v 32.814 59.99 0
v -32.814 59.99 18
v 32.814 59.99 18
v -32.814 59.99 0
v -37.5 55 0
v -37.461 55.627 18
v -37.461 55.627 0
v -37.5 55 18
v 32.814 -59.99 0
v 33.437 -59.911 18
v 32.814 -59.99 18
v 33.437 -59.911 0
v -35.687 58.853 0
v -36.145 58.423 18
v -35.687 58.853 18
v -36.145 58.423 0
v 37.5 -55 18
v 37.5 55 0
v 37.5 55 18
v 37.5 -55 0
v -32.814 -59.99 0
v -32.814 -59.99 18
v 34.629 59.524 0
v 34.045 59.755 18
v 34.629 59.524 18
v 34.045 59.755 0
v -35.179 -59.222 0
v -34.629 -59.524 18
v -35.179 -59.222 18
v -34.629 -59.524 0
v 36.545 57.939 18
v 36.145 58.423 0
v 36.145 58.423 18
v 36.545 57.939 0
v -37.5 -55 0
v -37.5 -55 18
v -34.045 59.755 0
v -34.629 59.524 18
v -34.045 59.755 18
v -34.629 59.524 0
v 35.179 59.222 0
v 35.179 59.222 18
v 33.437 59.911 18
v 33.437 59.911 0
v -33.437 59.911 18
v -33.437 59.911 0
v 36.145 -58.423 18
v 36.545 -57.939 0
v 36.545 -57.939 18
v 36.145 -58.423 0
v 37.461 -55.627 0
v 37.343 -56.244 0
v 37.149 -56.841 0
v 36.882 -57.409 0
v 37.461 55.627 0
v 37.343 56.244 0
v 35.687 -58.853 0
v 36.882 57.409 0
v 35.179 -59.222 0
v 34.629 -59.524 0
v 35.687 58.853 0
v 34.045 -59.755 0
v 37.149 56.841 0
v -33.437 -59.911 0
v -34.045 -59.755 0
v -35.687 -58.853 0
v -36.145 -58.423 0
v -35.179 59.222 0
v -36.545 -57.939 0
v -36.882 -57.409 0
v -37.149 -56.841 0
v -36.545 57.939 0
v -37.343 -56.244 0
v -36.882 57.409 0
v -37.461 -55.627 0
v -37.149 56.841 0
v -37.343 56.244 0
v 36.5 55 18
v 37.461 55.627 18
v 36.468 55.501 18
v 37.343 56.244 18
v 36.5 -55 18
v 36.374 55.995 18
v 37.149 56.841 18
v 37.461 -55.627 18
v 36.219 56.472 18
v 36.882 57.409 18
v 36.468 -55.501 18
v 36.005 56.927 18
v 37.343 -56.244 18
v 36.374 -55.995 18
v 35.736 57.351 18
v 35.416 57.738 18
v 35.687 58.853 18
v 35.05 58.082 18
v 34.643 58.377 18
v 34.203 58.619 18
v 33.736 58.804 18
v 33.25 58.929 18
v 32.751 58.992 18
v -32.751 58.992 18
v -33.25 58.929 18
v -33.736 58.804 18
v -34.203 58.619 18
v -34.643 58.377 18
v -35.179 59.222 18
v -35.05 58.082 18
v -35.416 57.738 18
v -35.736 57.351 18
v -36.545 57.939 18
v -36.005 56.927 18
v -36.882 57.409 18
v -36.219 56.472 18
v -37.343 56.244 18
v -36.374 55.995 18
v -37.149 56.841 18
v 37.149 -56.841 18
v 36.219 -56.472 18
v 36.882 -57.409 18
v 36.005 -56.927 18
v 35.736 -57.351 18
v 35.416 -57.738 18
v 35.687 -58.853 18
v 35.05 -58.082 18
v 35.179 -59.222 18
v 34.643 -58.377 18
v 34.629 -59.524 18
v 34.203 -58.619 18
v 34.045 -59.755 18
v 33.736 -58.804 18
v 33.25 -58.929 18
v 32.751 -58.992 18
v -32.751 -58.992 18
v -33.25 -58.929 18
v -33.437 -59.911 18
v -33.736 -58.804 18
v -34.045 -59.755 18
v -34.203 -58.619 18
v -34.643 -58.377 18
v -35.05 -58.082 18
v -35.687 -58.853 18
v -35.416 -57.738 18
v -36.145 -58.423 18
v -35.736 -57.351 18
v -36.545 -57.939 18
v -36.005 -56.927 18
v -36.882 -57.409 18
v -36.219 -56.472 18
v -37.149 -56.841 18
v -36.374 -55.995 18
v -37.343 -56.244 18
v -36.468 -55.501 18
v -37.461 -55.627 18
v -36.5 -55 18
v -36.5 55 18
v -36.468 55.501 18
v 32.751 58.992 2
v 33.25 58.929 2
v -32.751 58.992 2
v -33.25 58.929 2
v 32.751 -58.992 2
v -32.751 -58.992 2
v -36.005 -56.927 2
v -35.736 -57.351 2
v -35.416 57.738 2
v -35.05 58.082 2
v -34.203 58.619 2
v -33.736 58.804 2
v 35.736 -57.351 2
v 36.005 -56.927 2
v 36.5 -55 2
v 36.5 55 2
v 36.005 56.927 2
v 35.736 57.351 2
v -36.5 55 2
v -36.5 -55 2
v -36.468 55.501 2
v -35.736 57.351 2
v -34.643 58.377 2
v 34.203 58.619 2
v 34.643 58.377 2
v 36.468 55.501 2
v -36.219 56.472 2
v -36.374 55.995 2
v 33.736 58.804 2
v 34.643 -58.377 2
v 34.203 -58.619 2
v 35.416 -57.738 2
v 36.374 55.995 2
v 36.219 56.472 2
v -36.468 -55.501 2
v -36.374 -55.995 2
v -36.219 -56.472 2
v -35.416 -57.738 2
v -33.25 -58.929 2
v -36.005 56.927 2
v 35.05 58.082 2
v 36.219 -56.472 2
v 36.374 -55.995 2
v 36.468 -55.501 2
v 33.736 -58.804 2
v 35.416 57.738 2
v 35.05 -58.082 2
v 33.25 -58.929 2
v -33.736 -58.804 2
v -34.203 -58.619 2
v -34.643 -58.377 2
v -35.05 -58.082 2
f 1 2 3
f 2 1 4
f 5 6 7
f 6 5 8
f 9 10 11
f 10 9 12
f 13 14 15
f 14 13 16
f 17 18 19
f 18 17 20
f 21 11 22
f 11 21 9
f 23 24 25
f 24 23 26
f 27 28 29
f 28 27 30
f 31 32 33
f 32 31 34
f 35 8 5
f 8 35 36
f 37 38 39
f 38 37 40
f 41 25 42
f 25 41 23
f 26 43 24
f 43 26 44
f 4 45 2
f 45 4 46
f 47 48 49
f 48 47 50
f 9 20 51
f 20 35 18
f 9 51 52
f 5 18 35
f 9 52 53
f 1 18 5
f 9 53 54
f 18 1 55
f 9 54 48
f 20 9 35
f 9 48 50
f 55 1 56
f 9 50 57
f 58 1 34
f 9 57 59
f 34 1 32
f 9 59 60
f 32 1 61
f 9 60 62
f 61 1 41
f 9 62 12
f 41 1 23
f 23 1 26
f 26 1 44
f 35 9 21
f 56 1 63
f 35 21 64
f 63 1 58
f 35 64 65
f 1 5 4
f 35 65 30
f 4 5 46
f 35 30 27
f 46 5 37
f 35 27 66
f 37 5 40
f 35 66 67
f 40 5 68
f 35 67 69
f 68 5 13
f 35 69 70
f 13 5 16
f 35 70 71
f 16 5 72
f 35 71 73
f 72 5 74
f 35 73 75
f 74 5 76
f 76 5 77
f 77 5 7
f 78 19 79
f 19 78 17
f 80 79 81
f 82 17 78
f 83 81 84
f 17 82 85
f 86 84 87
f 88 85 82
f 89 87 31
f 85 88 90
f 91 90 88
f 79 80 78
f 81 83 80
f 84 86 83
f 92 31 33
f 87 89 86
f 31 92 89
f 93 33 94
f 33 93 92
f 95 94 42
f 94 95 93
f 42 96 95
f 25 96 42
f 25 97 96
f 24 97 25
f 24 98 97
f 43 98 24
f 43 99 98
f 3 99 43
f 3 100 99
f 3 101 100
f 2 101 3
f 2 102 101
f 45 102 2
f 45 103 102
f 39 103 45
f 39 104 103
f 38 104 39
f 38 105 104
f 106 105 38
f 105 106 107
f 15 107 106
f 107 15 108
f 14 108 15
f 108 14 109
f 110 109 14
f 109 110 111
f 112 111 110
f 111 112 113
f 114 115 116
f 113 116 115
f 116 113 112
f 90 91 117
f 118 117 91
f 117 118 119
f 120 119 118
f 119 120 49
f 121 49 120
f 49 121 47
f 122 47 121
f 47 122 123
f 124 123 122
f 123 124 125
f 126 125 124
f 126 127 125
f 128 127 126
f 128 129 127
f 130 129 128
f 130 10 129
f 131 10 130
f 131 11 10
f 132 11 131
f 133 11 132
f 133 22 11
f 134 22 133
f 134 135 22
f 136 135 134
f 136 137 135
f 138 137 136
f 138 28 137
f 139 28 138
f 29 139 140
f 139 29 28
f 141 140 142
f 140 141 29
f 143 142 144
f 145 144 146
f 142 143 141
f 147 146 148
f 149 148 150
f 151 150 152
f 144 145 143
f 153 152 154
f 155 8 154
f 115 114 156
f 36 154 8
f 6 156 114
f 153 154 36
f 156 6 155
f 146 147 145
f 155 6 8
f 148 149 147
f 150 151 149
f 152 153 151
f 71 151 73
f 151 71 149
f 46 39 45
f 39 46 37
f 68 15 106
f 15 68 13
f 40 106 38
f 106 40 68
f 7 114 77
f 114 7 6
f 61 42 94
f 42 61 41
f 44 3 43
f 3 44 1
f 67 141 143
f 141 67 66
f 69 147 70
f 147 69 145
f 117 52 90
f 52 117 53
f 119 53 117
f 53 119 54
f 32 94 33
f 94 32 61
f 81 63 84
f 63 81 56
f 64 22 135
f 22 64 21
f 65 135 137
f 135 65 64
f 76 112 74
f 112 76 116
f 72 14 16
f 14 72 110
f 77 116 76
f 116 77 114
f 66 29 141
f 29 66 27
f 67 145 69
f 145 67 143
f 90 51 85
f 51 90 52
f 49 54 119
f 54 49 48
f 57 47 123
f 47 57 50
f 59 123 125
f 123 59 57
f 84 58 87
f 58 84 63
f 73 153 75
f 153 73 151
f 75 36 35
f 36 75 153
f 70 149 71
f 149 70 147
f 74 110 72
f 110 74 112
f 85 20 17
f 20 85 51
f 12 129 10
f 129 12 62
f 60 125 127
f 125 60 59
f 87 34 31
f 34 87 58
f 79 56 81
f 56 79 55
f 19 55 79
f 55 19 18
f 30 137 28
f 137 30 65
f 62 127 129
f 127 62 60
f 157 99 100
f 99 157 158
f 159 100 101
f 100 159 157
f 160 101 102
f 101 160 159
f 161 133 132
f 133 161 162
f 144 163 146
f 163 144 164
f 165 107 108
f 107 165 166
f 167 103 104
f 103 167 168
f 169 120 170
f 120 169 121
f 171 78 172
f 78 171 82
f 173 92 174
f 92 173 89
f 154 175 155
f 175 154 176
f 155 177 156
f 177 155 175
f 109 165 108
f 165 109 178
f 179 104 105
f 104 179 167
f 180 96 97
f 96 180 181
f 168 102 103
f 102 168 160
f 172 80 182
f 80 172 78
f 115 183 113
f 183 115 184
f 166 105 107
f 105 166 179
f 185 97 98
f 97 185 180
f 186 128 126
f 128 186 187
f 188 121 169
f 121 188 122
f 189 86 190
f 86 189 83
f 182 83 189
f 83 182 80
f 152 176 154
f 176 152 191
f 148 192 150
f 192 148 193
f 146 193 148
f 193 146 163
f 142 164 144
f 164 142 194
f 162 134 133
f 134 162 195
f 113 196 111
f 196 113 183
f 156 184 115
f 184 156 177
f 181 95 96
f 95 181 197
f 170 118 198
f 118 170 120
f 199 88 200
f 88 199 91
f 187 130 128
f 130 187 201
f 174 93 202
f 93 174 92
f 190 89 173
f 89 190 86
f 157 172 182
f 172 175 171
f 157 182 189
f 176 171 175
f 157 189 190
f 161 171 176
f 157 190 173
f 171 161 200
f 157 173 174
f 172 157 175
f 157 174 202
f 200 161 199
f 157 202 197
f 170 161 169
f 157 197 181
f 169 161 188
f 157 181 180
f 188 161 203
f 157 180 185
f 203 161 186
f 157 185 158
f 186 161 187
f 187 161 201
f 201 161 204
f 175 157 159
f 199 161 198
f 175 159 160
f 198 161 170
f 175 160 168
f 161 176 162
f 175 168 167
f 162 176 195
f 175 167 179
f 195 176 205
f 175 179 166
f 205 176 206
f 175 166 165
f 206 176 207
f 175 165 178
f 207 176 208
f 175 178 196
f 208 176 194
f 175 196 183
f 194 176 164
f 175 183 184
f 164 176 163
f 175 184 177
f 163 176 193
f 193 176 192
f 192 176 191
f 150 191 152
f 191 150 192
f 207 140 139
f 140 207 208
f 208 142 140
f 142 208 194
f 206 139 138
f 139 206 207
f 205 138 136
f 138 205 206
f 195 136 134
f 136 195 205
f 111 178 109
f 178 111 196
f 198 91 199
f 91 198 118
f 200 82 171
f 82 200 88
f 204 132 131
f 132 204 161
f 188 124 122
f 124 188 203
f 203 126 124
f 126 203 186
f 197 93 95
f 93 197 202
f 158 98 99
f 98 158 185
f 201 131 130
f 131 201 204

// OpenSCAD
$fn = 50;


difference() {
	union() {
		hull() {
			translate(v = [-32.5000000000, 55.0000000000, 0]) {
				cylinder(h = 18, r = 5);
			}
			translate(v = [32.5000000000, 55.0000000000, 0]) {
				cylinder(h = 18, r = 5);
			}
			translate(v = [-32.5000000000, -55.0000000000, 0]) {
				cylinder(h = 18, r = 5);
			}
			translate(v = [32.5000000000, -55.0000000000, 0]) {
				cylinder(h = 18, r = 5);
			}
		}
	}
	union() {
		translate(v = [0, 0, 2]) {
			hull() {
				translate(v = [-32.5000000000, 55.0000000000, 0]) {
					cylinder(h = 16, r = 4);
				}
				translate(v = [32.5000000000, 55.0000000000, 0]) {
					cylinder(h = 16, r = 4);
				}
				translate(v = [-32.5000000000, -55.0000000000, 0]) {
					cylinder(h = 16, r = 4);
				}
				translate(v = [32.5000000000, -55.0000000000, 0]) {
					cylinder(h = 16, r = 4);
				}
			}
		}
	}
}
